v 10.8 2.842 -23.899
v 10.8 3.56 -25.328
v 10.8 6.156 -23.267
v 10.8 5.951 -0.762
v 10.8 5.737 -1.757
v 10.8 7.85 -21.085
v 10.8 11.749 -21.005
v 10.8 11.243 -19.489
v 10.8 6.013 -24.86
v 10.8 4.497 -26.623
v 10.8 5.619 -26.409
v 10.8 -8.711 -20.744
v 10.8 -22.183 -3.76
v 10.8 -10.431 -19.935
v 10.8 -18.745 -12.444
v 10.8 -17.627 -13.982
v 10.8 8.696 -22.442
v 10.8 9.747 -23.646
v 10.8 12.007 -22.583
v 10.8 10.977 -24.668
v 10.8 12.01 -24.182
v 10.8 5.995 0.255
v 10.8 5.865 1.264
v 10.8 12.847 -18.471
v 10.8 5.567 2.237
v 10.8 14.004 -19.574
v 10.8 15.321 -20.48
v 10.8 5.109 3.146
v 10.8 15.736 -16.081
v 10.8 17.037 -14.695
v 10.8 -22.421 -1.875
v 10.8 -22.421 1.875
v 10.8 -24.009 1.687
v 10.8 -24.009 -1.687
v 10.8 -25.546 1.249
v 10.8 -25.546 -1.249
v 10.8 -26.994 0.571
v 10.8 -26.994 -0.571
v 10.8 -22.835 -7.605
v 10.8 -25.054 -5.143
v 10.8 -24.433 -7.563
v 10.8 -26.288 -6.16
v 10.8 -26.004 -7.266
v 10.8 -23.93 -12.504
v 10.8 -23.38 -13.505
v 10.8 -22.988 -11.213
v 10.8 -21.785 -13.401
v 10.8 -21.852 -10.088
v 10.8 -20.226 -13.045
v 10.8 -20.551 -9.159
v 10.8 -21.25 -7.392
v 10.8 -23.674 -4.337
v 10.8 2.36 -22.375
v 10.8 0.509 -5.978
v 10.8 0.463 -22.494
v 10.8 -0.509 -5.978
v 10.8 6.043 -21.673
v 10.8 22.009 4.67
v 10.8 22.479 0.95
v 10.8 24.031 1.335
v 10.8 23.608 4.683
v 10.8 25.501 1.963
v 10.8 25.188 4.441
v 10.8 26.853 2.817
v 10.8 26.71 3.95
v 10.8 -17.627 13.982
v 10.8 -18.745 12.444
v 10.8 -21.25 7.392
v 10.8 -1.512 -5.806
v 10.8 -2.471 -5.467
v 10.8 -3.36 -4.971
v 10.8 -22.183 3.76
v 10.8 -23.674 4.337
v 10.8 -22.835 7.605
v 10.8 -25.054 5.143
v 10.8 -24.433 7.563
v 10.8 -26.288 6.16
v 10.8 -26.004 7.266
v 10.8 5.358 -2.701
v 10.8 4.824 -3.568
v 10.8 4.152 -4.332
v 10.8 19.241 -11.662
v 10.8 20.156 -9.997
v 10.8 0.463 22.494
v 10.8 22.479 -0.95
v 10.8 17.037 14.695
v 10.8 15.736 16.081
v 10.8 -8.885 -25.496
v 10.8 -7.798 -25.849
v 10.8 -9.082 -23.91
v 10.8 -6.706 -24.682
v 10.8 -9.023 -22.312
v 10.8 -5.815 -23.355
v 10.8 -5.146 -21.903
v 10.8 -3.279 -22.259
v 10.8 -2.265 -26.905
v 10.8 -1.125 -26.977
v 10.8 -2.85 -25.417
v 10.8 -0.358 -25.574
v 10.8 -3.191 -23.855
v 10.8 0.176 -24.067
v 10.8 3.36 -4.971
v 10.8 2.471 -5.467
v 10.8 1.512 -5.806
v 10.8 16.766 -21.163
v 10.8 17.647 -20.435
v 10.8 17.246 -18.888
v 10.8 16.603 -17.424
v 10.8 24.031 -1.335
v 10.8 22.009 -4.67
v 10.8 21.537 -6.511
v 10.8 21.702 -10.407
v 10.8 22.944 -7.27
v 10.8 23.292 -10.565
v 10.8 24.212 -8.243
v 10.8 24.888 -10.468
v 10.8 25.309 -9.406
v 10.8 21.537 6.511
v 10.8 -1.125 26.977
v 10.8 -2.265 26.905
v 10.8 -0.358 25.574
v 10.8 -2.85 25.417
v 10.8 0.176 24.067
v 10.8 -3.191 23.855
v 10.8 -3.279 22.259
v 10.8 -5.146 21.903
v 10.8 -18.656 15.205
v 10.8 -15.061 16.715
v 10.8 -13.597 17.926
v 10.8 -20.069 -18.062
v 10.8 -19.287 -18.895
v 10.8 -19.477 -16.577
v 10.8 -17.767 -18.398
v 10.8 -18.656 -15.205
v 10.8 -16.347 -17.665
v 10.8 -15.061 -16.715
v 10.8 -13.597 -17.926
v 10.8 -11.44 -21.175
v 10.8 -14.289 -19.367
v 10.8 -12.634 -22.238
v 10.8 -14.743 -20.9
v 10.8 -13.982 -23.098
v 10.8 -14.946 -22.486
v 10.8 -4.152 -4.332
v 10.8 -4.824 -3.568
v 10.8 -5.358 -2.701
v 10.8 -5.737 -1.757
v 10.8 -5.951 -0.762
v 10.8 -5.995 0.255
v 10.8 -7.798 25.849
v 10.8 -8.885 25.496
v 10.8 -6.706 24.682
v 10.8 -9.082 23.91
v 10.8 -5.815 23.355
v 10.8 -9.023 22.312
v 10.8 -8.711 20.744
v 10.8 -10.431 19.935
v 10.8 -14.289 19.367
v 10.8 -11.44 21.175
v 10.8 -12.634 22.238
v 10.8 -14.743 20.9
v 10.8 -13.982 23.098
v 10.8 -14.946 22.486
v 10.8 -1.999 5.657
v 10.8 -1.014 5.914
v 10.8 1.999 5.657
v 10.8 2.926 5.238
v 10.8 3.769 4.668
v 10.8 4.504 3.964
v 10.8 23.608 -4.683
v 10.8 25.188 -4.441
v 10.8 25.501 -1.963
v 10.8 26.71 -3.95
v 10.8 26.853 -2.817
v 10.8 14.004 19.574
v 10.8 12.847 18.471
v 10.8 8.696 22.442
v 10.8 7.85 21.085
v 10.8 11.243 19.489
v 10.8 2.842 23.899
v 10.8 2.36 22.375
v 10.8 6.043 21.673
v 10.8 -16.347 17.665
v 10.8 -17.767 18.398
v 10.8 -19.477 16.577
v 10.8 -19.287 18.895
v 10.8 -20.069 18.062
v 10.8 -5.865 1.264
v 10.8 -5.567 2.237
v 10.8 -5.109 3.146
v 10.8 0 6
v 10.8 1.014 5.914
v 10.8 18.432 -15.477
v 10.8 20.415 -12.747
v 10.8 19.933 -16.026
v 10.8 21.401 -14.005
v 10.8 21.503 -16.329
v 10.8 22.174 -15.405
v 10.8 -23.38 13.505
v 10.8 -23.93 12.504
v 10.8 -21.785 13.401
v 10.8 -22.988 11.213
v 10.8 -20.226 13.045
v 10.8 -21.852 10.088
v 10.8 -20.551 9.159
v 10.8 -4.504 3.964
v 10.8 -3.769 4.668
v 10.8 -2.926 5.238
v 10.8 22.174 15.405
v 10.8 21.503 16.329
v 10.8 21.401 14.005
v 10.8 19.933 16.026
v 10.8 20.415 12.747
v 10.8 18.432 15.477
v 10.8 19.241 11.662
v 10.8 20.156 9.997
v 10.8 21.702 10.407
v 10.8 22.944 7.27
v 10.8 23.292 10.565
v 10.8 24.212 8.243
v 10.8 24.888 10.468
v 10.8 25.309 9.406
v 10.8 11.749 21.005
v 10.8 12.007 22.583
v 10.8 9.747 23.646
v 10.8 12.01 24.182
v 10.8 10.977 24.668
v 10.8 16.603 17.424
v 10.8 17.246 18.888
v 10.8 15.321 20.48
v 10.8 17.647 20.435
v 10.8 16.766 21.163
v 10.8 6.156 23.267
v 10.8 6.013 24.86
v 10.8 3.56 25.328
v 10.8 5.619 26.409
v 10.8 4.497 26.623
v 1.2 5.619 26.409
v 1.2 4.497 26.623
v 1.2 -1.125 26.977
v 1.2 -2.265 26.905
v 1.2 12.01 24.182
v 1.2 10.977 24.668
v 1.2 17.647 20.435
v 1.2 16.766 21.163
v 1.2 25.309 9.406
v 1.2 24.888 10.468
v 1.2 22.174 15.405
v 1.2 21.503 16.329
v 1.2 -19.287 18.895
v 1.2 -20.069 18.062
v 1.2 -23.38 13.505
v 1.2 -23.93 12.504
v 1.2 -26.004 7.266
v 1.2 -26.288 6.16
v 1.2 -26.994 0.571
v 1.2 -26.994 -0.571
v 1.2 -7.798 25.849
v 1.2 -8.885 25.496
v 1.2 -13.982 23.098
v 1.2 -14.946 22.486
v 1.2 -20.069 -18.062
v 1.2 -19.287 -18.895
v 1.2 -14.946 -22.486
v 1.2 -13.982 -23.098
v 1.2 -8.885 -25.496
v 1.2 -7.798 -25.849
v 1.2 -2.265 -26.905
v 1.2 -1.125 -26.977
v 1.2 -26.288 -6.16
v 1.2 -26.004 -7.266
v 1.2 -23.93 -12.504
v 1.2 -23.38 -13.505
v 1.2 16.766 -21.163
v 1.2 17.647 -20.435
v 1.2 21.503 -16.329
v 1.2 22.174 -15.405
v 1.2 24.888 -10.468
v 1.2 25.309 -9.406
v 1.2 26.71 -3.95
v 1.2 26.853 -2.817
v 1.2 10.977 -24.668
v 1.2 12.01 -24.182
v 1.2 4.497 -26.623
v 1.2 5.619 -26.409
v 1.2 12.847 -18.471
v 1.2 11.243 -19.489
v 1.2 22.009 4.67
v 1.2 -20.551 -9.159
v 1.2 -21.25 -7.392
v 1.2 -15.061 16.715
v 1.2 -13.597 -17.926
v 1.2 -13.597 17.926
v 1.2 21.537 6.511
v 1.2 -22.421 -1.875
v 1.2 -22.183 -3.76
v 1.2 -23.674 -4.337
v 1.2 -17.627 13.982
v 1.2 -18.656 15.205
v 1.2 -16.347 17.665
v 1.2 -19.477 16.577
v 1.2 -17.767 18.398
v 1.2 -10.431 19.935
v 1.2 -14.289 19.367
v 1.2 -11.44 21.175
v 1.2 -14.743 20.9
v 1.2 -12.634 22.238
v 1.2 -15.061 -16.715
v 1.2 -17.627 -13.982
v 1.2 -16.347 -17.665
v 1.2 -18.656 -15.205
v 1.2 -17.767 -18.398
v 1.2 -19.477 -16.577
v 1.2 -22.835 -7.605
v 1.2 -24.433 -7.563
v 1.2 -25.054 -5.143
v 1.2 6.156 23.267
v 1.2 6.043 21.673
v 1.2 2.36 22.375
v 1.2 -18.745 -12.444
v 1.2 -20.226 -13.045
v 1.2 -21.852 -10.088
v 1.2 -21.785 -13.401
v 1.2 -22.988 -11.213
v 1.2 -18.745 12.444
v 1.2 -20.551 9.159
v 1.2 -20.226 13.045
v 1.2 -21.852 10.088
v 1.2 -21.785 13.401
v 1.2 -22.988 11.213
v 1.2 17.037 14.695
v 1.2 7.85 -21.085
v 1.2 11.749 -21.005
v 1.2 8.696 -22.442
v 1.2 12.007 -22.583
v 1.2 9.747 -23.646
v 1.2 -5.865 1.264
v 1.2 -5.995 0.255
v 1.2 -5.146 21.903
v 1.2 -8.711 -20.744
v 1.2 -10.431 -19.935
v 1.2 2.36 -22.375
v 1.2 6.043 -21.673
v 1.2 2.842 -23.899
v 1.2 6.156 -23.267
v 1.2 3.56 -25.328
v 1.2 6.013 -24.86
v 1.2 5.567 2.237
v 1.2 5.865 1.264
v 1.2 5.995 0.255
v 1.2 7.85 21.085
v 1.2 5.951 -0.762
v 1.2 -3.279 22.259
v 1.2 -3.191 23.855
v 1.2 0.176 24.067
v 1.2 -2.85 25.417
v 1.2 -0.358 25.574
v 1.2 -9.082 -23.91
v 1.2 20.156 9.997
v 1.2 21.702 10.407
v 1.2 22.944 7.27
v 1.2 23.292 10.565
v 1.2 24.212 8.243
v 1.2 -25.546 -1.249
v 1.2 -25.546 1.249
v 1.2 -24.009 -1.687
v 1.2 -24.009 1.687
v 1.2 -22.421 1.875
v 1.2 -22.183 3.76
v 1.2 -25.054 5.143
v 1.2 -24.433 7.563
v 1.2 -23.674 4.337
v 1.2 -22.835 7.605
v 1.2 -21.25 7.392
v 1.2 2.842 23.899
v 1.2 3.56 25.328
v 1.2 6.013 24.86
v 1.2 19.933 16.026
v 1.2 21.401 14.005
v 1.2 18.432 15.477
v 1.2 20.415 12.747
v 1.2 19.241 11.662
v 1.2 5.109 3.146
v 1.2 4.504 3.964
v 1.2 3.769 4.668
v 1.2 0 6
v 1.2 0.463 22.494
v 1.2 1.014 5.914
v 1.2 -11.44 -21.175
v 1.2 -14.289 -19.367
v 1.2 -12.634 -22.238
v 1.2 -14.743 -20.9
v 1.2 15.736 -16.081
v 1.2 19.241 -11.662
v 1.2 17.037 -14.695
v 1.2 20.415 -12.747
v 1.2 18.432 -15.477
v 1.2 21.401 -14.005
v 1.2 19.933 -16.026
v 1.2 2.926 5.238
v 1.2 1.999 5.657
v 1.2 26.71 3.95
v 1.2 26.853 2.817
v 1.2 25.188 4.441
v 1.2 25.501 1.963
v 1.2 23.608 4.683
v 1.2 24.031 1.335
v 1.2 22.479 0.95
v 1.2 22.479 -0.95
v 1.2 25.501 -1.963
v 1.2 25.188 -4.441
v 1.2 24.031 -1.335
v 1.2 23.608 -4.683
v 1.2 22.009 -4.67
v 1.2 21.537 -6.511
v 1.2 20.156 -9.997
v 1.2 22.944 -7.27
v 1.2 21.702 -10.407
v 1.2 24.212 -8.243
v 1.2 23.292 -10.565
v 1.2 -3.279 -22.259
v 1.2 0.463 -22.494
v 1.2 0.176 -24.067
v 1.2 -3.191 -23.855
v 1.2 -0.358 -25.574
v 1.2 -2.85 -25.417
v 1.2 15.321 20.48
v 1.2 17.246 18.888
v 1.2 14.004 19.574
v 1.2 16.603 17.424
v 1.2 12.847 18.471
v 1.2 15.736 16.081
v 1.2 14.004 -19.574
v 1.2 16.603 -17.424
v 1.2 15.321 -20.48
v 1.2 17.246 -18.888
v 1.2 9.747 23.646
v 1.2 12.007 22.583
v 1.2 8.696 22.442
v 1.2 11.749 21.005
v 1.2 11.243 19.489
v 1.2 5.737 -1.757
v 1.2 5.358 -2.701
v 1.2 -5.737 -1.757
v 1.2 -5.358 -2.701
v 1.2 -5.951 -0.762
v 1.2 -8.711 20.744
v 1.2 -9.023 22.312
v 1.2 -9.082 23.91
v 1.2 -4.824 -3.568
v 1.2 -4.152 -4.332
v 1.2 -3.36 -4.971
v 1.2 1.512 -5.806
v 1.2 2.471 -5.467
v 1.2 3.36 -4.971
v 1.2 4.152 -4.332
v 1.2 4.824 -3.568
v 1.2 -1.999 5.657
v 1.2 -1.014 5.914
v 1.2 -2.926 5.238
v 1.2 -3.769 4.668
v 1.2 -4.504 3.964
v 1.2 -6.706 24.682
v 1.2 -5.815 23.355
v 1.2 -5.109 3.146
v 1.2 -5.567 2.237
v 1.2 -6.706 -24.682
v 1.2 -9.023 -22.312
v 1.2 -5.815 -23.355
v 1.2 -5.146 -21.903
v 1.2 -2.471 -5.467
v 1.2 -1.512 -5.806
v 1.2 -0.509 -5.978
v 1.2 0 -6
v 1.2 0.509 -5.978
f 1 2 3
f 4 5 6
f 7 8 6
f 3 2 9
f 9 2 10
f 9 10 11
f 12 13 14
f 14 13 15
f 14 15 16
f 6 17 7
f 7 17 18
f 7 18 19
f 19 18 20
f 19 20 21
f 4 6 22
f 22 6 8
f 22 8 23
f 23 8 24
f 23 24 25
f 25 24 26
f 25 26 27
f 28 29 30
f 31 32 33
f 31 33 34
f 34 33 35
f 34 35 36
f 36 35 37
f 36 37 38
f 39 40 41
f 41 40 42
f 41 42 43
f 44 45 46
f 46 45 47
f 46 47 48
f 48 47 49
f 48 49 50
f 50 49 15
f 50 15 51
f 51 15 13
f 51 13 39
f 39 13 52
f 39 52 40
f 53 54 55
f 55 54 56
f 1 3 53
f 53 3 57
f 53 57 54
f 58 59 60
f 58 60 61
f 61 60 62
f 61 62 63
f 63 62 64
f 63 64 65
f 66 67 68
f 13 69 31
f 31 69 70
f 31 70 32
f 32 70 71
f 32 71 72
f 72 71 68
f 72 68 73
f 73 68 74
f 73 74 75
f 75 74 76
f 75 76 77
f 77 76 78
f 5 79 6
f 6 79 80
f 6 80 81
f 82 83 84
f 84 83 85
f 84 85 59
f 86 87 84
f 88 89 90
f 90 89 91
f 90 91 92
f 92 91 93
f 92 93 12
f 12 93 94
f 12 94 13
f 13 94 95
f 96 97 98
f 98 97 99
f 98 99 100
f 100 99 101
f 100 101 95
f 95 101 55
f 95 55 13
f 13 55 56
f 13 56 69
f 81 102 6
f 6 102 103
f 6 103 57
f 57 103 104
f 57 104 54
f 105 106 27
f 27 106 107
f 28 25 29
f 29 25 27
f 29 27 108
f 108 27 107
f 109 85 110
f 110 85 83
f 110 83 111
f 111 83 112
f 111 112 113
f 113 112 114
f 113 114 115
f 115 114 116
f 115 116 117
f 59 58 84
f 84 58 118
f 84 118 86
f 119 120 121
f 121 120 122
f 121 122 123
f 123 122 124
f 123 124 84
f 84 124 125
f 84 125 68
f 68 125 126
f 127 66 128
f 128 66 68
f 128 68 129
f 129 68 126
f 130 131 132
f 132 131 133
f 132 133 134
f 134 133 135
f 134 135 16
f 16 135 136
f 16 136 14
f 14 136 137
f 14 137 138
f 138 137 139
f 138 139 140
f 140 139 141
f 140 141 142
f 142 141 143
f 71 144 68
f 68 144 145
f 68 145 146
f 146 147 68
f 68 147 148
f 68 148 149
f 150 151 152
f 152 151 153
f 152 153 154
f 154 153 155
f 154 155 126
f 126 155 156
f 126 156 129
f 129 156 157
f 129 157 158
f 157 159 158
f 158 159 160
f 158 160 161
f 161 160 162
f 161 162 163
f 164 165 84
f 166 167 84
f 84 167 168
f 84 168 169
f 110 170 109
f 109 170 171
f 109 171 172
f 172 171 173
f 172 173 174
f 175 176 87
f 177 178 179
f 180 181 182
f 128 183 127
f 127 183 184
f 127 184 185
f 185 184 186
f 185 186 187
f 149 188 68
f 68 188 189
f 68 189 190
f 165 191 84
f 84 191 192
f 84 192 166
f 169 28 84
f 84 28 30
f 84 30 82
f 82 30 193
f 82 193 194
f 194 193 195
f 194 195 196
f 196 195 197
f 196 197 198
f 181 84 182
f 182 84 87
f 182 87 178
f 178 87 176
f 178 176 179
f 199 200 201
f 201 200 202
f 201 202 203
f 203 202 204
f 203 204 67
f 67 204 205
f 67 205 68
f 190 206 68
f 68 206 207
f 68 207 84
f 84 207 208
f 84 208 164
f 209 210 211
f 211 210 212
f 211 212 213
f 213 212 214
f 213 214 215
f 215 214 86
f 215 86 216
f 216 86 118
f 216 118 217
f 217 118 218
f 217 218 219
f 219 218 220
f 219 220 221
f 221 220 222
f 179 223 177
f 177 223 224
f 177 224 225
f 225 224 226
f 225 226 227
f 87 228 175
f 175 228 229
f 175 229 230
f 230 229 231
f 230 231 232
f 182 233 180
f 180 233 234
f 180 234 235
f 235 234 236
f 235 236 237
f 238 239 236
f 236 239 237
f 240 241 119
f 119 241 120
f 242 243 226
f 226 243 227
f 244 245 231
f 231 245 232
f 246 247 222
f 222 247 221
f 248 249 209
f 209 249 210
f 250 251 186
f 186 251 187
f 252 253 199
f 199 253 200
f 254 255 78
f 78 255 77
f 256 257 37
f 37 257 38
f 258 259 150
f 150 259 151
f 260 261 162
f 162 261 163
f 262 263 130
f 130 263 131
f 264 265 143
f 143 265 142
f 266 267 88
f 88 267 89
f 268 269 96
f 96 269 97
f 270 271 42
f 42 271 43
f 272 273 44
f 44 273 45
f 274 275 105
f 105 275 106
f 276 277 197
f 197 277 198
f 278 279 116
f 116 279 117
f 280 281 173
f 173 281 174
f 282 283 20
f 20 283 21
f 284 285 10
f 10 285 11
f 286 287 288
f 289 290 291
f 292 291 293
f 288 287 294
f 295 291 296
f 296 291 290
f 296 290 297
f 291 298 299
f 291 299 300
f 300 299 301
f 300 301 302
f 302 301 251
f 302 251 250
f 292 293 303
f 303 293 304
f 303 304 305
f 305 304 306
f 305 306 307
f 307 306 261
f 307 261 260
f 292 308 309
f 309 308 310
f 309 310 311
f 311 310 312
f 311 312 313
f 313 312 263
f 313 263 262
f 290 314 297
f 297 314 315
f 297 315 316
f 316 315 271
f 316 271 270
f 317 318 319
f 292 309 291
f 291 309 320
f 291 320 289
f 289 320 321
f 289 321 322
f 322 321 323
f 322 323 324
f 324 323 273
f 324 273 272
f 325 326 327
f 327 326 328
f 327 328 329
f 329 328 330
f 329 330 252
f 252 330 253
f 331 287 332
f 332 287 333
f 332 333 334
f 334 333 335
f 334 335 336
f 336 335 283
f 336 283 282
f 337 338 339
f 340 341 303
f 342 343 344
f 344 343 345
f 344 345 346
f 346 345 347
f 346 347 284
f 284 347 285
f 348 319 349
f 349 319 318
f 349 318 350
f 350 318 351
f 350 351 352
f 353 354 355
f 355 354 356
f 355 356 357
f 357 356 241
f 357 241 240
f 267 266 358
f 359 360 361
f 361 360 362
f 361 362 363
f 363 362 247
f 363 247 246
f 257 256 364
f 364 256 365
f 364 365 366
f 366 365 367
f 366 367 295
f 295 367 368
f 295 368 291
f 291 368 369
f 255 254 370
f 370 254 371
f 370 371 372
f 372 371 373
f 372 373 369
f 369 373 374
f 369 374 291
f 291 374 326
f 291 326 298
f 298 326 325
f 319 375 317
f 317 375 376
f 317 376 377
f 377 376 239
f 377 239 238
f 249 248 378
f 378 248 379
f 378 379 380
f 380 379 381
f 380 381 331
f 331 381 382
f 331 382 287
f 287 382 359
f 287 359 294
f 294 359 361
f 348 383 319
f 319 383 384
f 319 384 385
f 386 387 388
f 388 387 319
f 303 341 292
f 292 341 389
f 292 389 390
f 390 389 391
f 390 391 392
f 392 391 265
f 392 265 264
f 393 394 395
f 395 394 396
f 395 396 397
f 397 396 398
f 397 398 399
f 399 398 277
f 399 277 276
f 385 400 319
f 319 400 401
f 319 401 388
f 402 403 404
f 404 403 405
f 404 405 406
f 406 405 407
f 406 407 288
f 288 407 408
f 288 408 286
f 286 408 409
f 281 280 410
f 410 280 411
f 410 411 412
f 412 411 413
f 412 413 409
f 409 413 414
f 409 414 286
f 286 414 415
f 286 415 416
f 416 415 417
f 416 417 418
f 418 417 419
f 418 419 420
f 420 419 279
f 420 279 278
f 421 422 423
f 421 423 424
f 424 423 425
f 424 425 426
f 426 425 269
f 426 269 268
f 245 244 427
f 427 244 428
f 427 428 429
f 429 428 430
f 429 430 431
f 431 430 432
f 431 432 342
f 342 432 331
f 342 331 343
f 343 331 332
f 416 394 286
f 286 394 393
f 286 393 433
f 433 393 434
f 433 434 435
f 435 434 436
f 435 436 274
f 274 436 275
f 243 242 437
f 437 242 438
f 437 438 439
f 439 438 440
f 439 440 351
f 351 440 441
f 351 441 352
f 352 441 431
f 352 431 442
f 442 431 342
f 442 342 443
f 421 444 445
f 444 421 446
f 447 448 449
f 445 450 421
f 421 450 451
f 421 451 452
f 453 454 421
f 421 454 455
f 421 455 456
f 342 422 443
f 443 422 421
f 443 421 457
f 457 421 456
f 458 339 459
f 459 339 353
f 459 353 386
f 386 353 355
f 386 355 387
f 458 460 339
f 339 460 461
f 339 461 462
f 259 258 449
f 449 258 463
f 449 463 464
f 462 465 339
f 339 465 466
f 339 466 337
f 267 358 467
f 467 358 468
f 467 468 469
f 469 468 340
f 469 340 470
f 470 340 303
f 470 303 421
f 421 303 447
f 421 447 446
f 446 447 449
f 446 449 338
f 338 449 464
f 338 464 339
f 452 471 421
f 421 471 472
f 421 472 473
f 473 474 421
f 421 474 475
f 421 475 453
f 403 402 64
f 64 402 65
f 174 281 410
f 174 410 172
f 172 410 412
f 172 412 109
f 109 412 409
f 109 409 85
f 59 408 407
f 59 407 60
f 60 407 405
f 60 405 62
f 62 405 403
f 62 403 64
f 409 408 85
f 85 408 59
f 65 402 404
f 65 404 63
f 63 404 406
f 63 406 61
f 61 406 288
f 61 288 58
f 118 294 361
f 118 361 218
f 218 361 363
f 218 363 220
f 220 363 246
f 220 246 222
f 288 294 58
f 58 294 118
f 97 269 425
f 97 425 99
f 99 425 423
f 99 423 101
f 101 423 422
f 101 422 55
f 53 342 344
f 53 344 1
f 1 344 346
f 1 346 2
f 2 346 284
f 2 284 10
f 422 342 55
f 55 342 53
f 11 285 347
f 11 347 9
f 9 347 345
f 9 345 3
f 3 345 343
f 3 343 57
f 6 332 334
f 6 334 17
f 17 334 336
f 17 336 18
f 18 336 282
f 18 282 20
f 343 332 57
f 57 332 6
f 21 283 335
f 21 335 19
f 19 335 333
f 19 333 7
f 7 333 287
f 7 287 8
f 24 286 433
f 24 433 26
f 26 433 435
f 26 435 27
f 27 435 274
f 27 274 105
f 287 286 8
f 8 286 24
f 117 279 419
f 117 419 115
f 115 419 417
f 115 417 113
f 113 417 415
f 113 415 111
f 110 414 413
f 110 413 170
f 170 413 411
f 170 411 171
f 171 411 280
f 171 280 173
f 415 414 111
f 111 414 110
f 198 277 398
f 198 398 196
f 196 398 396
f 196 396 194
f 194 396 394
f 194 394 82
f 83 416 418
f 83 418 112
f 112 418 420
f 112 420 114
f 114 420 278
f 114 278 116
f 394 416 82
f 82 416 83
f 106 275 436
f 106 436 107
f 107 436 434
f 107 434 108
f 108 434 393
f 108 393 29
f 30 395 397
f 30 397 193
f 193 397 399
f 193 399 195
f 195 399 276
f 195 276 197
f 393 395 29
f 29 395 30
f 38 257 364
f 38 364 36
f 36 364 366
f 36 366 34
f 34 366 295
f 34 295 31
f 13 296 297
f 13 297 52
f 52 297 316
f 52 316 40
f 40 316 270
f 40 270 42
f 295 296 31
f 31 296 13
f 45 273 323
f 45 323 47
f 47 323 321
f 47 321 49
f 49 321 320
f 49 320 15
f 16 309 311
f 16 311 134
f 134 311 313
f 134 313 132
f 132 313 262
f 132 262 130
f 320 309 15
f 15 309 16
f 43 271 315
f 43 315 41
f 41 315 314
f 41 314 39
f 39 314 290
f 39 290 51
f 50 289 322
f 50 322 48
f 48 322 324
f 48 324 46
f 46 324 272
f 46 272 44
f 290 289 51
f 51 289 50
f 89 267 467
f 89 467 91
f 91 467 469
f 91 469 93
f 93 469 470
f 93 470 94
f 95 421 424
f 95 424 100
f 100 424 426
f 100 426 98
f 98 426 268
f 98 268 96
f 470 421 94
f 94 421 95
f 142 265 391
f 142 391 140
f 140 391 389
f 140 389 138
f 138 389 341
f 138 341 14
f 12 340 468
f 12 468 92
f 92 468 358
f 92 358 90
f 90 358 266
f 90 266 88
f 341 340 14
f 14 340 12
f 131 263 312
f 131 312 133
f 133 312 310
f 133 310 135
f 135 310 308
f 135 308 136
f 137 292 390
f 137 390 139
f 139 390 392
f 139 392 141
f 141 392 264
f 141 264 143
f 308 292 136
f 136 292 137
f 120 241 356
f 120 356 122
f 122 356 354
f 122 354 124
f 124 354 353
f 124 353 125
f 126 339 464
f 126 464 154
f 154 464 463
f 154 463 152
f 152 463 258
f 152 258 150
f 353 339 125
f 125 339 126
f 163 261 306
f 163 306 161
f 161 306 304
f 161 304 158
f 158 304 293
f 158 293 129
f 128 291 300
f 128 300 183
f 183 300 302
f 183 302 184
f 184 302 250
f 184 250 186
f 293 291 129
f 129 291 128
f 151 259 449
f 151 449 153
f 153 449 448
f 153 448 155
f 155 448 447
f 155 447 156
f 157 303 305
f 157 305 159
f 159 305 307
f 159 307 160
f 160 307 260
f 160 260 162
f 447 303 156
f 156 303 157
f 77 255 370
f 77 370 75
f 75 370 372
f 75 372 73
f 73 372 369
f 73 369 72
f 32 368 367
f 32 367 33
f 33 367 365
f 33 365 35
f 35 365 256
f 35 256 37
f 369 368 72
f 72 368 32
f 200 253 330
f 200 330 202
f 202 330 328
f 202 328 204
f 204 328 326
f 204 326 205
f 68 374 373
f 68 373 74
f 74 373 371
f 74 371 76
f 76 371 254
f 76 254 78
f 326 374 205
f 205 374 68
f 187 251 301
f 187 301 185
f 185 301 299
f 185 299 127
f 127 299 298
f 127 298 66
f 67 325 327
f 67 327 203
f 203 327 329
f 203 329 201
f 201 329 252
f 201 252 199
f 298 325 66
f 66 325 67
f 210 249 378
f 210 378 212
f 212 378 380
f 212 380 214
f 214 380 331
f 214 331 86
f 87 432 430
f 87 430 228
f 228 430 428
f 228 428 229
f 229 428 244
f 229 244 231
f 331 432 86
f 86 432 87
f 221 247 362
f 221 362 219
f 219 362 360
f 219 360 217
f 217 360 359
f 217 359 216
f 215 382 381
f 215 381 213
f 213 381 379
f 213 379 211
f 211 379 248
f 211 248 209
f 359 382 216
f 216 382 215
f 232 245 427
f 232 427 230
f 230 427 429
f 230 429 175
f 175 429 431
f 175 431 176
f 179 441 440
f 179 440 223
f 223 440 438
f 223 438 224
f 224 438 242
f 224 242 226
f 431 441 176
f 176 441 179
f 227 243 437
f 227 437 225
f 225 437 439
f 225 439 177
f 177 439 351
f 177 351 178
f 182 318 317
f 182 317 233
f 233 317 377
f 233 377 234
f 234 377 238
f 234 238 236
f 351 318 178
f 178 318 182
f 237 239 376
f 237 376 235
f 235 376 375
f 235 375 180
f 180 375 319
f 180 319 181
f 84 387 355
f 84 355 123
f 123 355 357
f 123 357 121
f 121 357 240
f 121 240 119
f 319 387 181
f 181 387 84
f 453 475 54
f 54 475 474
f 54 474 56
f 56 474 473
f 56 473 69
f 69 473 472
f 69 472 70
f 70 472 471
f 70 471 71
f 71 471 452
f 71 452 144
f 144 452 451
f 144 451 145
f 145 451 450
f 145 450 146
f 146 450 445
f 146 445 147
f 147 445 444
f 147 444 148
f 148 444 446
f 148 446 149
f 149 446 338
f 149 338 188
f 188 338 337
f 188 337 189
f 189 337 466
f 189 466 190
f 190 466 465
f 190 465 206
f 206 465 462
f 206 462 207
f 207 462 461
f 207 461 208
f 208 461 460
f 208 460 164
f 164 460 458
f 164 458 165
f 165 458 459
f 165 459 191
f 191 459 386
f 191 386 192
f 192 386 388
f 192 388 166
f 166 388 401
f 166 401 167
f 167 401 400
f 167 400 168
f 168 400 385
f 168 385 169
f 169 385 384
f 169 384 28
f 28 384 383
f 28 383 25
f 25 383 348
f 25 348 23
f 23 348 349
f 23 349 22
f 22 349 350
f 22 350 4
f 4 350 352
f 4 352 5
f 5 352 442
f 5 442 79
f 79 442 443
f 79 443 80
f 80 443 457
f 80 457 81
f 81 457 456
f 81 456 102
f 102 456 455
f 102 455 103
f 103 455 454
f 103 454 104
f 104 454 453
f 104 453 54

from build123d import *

# Parameters (mm, degrees)
BASPROSKE_W     = 12
BASPROSKE_H     = 33.75
TOOTHCUT_DEPTH  = 50.21508915
TEETHCUTS_COUNT = 25
TEETHCUTS_ANGLE = 345.6
BORSKE_R        = 7.5
BORE_DEPTH      = 50.000508
SCALE2_SCALE    = 0.8


with BuildPart() as part:
    # BasProSke → Base-Revolve (revolve)
    with BuildSketch(Plane(origin=(0, 0, 0), x_dir=(1, 0, 0), z_dir=(0, 1, 0))):
        with Locations((6, 16.875)):
            Rectangle(BASPROSKE_W, BASPROSKE_H)
    revolve(axis=Axis((-10, 0, 0), (1, 0, 0)))

    # TooCutSke → ToothCut (cut, through all)
    with BuildSketch(Plane(origin=(0, 0, 0), x_dir=(0, 0, -1), z_dir=(1, 0, 0))):
        with BuildLine():
            ThreePointArc((1.187856988, 28.098903391), (0, 28.124), (-1.187856988, 28.098903391))
            ThreePointArc((-1.187856988, 28.098903391), (-2.083835169, 31.109603364), (-3.702102288, 33.801870579))
            ThreePointArc((-3.702102288, 33.801870579), (0, 34.004), (3.702102288, 33.801870579))
            ThreePointArc((3.702102288, 33.801870579), (2.083835169, 31.109603364), (1.187856988, 28.098903391))
        make_face()
    toothcut = extrude(amount=TOOTHCUT_DEPTH, mode=Mode.SUBTRACT)

    # TeethCuts: ToothCut ×25 about axis
    teethcuts_axis = Axis((-10, 0, 0), (1, 0, 0))
    for i in range(1, TEETHCUTS_COUNT):
        add(toothcut.rotate(teethcuts_axis, i * TEETHCUTS_ANGLE / (TEETHCUTS_COUNT - 1)), mode=Mode.SUBTRACT)

    # BorSke → Bore (cut, symmetric)
    with BuildSketch(Plane(origin=(0, 0, 0), x_dir=(0, 0, -1), z_dir=(1, 0, 0))):
        Circle(BORSKE_R)
    extrude(amount=BORE_DEPTH, both=True, mode=Mode.SUBTRACT)


with BuildPart() as part_1:
    # Scale2: scaled about (6, 0, 0)
    add(part.part.scale(SCALE2_SCALE).moved(Location((1.2, 0, 0))))


solid = part_1.part
